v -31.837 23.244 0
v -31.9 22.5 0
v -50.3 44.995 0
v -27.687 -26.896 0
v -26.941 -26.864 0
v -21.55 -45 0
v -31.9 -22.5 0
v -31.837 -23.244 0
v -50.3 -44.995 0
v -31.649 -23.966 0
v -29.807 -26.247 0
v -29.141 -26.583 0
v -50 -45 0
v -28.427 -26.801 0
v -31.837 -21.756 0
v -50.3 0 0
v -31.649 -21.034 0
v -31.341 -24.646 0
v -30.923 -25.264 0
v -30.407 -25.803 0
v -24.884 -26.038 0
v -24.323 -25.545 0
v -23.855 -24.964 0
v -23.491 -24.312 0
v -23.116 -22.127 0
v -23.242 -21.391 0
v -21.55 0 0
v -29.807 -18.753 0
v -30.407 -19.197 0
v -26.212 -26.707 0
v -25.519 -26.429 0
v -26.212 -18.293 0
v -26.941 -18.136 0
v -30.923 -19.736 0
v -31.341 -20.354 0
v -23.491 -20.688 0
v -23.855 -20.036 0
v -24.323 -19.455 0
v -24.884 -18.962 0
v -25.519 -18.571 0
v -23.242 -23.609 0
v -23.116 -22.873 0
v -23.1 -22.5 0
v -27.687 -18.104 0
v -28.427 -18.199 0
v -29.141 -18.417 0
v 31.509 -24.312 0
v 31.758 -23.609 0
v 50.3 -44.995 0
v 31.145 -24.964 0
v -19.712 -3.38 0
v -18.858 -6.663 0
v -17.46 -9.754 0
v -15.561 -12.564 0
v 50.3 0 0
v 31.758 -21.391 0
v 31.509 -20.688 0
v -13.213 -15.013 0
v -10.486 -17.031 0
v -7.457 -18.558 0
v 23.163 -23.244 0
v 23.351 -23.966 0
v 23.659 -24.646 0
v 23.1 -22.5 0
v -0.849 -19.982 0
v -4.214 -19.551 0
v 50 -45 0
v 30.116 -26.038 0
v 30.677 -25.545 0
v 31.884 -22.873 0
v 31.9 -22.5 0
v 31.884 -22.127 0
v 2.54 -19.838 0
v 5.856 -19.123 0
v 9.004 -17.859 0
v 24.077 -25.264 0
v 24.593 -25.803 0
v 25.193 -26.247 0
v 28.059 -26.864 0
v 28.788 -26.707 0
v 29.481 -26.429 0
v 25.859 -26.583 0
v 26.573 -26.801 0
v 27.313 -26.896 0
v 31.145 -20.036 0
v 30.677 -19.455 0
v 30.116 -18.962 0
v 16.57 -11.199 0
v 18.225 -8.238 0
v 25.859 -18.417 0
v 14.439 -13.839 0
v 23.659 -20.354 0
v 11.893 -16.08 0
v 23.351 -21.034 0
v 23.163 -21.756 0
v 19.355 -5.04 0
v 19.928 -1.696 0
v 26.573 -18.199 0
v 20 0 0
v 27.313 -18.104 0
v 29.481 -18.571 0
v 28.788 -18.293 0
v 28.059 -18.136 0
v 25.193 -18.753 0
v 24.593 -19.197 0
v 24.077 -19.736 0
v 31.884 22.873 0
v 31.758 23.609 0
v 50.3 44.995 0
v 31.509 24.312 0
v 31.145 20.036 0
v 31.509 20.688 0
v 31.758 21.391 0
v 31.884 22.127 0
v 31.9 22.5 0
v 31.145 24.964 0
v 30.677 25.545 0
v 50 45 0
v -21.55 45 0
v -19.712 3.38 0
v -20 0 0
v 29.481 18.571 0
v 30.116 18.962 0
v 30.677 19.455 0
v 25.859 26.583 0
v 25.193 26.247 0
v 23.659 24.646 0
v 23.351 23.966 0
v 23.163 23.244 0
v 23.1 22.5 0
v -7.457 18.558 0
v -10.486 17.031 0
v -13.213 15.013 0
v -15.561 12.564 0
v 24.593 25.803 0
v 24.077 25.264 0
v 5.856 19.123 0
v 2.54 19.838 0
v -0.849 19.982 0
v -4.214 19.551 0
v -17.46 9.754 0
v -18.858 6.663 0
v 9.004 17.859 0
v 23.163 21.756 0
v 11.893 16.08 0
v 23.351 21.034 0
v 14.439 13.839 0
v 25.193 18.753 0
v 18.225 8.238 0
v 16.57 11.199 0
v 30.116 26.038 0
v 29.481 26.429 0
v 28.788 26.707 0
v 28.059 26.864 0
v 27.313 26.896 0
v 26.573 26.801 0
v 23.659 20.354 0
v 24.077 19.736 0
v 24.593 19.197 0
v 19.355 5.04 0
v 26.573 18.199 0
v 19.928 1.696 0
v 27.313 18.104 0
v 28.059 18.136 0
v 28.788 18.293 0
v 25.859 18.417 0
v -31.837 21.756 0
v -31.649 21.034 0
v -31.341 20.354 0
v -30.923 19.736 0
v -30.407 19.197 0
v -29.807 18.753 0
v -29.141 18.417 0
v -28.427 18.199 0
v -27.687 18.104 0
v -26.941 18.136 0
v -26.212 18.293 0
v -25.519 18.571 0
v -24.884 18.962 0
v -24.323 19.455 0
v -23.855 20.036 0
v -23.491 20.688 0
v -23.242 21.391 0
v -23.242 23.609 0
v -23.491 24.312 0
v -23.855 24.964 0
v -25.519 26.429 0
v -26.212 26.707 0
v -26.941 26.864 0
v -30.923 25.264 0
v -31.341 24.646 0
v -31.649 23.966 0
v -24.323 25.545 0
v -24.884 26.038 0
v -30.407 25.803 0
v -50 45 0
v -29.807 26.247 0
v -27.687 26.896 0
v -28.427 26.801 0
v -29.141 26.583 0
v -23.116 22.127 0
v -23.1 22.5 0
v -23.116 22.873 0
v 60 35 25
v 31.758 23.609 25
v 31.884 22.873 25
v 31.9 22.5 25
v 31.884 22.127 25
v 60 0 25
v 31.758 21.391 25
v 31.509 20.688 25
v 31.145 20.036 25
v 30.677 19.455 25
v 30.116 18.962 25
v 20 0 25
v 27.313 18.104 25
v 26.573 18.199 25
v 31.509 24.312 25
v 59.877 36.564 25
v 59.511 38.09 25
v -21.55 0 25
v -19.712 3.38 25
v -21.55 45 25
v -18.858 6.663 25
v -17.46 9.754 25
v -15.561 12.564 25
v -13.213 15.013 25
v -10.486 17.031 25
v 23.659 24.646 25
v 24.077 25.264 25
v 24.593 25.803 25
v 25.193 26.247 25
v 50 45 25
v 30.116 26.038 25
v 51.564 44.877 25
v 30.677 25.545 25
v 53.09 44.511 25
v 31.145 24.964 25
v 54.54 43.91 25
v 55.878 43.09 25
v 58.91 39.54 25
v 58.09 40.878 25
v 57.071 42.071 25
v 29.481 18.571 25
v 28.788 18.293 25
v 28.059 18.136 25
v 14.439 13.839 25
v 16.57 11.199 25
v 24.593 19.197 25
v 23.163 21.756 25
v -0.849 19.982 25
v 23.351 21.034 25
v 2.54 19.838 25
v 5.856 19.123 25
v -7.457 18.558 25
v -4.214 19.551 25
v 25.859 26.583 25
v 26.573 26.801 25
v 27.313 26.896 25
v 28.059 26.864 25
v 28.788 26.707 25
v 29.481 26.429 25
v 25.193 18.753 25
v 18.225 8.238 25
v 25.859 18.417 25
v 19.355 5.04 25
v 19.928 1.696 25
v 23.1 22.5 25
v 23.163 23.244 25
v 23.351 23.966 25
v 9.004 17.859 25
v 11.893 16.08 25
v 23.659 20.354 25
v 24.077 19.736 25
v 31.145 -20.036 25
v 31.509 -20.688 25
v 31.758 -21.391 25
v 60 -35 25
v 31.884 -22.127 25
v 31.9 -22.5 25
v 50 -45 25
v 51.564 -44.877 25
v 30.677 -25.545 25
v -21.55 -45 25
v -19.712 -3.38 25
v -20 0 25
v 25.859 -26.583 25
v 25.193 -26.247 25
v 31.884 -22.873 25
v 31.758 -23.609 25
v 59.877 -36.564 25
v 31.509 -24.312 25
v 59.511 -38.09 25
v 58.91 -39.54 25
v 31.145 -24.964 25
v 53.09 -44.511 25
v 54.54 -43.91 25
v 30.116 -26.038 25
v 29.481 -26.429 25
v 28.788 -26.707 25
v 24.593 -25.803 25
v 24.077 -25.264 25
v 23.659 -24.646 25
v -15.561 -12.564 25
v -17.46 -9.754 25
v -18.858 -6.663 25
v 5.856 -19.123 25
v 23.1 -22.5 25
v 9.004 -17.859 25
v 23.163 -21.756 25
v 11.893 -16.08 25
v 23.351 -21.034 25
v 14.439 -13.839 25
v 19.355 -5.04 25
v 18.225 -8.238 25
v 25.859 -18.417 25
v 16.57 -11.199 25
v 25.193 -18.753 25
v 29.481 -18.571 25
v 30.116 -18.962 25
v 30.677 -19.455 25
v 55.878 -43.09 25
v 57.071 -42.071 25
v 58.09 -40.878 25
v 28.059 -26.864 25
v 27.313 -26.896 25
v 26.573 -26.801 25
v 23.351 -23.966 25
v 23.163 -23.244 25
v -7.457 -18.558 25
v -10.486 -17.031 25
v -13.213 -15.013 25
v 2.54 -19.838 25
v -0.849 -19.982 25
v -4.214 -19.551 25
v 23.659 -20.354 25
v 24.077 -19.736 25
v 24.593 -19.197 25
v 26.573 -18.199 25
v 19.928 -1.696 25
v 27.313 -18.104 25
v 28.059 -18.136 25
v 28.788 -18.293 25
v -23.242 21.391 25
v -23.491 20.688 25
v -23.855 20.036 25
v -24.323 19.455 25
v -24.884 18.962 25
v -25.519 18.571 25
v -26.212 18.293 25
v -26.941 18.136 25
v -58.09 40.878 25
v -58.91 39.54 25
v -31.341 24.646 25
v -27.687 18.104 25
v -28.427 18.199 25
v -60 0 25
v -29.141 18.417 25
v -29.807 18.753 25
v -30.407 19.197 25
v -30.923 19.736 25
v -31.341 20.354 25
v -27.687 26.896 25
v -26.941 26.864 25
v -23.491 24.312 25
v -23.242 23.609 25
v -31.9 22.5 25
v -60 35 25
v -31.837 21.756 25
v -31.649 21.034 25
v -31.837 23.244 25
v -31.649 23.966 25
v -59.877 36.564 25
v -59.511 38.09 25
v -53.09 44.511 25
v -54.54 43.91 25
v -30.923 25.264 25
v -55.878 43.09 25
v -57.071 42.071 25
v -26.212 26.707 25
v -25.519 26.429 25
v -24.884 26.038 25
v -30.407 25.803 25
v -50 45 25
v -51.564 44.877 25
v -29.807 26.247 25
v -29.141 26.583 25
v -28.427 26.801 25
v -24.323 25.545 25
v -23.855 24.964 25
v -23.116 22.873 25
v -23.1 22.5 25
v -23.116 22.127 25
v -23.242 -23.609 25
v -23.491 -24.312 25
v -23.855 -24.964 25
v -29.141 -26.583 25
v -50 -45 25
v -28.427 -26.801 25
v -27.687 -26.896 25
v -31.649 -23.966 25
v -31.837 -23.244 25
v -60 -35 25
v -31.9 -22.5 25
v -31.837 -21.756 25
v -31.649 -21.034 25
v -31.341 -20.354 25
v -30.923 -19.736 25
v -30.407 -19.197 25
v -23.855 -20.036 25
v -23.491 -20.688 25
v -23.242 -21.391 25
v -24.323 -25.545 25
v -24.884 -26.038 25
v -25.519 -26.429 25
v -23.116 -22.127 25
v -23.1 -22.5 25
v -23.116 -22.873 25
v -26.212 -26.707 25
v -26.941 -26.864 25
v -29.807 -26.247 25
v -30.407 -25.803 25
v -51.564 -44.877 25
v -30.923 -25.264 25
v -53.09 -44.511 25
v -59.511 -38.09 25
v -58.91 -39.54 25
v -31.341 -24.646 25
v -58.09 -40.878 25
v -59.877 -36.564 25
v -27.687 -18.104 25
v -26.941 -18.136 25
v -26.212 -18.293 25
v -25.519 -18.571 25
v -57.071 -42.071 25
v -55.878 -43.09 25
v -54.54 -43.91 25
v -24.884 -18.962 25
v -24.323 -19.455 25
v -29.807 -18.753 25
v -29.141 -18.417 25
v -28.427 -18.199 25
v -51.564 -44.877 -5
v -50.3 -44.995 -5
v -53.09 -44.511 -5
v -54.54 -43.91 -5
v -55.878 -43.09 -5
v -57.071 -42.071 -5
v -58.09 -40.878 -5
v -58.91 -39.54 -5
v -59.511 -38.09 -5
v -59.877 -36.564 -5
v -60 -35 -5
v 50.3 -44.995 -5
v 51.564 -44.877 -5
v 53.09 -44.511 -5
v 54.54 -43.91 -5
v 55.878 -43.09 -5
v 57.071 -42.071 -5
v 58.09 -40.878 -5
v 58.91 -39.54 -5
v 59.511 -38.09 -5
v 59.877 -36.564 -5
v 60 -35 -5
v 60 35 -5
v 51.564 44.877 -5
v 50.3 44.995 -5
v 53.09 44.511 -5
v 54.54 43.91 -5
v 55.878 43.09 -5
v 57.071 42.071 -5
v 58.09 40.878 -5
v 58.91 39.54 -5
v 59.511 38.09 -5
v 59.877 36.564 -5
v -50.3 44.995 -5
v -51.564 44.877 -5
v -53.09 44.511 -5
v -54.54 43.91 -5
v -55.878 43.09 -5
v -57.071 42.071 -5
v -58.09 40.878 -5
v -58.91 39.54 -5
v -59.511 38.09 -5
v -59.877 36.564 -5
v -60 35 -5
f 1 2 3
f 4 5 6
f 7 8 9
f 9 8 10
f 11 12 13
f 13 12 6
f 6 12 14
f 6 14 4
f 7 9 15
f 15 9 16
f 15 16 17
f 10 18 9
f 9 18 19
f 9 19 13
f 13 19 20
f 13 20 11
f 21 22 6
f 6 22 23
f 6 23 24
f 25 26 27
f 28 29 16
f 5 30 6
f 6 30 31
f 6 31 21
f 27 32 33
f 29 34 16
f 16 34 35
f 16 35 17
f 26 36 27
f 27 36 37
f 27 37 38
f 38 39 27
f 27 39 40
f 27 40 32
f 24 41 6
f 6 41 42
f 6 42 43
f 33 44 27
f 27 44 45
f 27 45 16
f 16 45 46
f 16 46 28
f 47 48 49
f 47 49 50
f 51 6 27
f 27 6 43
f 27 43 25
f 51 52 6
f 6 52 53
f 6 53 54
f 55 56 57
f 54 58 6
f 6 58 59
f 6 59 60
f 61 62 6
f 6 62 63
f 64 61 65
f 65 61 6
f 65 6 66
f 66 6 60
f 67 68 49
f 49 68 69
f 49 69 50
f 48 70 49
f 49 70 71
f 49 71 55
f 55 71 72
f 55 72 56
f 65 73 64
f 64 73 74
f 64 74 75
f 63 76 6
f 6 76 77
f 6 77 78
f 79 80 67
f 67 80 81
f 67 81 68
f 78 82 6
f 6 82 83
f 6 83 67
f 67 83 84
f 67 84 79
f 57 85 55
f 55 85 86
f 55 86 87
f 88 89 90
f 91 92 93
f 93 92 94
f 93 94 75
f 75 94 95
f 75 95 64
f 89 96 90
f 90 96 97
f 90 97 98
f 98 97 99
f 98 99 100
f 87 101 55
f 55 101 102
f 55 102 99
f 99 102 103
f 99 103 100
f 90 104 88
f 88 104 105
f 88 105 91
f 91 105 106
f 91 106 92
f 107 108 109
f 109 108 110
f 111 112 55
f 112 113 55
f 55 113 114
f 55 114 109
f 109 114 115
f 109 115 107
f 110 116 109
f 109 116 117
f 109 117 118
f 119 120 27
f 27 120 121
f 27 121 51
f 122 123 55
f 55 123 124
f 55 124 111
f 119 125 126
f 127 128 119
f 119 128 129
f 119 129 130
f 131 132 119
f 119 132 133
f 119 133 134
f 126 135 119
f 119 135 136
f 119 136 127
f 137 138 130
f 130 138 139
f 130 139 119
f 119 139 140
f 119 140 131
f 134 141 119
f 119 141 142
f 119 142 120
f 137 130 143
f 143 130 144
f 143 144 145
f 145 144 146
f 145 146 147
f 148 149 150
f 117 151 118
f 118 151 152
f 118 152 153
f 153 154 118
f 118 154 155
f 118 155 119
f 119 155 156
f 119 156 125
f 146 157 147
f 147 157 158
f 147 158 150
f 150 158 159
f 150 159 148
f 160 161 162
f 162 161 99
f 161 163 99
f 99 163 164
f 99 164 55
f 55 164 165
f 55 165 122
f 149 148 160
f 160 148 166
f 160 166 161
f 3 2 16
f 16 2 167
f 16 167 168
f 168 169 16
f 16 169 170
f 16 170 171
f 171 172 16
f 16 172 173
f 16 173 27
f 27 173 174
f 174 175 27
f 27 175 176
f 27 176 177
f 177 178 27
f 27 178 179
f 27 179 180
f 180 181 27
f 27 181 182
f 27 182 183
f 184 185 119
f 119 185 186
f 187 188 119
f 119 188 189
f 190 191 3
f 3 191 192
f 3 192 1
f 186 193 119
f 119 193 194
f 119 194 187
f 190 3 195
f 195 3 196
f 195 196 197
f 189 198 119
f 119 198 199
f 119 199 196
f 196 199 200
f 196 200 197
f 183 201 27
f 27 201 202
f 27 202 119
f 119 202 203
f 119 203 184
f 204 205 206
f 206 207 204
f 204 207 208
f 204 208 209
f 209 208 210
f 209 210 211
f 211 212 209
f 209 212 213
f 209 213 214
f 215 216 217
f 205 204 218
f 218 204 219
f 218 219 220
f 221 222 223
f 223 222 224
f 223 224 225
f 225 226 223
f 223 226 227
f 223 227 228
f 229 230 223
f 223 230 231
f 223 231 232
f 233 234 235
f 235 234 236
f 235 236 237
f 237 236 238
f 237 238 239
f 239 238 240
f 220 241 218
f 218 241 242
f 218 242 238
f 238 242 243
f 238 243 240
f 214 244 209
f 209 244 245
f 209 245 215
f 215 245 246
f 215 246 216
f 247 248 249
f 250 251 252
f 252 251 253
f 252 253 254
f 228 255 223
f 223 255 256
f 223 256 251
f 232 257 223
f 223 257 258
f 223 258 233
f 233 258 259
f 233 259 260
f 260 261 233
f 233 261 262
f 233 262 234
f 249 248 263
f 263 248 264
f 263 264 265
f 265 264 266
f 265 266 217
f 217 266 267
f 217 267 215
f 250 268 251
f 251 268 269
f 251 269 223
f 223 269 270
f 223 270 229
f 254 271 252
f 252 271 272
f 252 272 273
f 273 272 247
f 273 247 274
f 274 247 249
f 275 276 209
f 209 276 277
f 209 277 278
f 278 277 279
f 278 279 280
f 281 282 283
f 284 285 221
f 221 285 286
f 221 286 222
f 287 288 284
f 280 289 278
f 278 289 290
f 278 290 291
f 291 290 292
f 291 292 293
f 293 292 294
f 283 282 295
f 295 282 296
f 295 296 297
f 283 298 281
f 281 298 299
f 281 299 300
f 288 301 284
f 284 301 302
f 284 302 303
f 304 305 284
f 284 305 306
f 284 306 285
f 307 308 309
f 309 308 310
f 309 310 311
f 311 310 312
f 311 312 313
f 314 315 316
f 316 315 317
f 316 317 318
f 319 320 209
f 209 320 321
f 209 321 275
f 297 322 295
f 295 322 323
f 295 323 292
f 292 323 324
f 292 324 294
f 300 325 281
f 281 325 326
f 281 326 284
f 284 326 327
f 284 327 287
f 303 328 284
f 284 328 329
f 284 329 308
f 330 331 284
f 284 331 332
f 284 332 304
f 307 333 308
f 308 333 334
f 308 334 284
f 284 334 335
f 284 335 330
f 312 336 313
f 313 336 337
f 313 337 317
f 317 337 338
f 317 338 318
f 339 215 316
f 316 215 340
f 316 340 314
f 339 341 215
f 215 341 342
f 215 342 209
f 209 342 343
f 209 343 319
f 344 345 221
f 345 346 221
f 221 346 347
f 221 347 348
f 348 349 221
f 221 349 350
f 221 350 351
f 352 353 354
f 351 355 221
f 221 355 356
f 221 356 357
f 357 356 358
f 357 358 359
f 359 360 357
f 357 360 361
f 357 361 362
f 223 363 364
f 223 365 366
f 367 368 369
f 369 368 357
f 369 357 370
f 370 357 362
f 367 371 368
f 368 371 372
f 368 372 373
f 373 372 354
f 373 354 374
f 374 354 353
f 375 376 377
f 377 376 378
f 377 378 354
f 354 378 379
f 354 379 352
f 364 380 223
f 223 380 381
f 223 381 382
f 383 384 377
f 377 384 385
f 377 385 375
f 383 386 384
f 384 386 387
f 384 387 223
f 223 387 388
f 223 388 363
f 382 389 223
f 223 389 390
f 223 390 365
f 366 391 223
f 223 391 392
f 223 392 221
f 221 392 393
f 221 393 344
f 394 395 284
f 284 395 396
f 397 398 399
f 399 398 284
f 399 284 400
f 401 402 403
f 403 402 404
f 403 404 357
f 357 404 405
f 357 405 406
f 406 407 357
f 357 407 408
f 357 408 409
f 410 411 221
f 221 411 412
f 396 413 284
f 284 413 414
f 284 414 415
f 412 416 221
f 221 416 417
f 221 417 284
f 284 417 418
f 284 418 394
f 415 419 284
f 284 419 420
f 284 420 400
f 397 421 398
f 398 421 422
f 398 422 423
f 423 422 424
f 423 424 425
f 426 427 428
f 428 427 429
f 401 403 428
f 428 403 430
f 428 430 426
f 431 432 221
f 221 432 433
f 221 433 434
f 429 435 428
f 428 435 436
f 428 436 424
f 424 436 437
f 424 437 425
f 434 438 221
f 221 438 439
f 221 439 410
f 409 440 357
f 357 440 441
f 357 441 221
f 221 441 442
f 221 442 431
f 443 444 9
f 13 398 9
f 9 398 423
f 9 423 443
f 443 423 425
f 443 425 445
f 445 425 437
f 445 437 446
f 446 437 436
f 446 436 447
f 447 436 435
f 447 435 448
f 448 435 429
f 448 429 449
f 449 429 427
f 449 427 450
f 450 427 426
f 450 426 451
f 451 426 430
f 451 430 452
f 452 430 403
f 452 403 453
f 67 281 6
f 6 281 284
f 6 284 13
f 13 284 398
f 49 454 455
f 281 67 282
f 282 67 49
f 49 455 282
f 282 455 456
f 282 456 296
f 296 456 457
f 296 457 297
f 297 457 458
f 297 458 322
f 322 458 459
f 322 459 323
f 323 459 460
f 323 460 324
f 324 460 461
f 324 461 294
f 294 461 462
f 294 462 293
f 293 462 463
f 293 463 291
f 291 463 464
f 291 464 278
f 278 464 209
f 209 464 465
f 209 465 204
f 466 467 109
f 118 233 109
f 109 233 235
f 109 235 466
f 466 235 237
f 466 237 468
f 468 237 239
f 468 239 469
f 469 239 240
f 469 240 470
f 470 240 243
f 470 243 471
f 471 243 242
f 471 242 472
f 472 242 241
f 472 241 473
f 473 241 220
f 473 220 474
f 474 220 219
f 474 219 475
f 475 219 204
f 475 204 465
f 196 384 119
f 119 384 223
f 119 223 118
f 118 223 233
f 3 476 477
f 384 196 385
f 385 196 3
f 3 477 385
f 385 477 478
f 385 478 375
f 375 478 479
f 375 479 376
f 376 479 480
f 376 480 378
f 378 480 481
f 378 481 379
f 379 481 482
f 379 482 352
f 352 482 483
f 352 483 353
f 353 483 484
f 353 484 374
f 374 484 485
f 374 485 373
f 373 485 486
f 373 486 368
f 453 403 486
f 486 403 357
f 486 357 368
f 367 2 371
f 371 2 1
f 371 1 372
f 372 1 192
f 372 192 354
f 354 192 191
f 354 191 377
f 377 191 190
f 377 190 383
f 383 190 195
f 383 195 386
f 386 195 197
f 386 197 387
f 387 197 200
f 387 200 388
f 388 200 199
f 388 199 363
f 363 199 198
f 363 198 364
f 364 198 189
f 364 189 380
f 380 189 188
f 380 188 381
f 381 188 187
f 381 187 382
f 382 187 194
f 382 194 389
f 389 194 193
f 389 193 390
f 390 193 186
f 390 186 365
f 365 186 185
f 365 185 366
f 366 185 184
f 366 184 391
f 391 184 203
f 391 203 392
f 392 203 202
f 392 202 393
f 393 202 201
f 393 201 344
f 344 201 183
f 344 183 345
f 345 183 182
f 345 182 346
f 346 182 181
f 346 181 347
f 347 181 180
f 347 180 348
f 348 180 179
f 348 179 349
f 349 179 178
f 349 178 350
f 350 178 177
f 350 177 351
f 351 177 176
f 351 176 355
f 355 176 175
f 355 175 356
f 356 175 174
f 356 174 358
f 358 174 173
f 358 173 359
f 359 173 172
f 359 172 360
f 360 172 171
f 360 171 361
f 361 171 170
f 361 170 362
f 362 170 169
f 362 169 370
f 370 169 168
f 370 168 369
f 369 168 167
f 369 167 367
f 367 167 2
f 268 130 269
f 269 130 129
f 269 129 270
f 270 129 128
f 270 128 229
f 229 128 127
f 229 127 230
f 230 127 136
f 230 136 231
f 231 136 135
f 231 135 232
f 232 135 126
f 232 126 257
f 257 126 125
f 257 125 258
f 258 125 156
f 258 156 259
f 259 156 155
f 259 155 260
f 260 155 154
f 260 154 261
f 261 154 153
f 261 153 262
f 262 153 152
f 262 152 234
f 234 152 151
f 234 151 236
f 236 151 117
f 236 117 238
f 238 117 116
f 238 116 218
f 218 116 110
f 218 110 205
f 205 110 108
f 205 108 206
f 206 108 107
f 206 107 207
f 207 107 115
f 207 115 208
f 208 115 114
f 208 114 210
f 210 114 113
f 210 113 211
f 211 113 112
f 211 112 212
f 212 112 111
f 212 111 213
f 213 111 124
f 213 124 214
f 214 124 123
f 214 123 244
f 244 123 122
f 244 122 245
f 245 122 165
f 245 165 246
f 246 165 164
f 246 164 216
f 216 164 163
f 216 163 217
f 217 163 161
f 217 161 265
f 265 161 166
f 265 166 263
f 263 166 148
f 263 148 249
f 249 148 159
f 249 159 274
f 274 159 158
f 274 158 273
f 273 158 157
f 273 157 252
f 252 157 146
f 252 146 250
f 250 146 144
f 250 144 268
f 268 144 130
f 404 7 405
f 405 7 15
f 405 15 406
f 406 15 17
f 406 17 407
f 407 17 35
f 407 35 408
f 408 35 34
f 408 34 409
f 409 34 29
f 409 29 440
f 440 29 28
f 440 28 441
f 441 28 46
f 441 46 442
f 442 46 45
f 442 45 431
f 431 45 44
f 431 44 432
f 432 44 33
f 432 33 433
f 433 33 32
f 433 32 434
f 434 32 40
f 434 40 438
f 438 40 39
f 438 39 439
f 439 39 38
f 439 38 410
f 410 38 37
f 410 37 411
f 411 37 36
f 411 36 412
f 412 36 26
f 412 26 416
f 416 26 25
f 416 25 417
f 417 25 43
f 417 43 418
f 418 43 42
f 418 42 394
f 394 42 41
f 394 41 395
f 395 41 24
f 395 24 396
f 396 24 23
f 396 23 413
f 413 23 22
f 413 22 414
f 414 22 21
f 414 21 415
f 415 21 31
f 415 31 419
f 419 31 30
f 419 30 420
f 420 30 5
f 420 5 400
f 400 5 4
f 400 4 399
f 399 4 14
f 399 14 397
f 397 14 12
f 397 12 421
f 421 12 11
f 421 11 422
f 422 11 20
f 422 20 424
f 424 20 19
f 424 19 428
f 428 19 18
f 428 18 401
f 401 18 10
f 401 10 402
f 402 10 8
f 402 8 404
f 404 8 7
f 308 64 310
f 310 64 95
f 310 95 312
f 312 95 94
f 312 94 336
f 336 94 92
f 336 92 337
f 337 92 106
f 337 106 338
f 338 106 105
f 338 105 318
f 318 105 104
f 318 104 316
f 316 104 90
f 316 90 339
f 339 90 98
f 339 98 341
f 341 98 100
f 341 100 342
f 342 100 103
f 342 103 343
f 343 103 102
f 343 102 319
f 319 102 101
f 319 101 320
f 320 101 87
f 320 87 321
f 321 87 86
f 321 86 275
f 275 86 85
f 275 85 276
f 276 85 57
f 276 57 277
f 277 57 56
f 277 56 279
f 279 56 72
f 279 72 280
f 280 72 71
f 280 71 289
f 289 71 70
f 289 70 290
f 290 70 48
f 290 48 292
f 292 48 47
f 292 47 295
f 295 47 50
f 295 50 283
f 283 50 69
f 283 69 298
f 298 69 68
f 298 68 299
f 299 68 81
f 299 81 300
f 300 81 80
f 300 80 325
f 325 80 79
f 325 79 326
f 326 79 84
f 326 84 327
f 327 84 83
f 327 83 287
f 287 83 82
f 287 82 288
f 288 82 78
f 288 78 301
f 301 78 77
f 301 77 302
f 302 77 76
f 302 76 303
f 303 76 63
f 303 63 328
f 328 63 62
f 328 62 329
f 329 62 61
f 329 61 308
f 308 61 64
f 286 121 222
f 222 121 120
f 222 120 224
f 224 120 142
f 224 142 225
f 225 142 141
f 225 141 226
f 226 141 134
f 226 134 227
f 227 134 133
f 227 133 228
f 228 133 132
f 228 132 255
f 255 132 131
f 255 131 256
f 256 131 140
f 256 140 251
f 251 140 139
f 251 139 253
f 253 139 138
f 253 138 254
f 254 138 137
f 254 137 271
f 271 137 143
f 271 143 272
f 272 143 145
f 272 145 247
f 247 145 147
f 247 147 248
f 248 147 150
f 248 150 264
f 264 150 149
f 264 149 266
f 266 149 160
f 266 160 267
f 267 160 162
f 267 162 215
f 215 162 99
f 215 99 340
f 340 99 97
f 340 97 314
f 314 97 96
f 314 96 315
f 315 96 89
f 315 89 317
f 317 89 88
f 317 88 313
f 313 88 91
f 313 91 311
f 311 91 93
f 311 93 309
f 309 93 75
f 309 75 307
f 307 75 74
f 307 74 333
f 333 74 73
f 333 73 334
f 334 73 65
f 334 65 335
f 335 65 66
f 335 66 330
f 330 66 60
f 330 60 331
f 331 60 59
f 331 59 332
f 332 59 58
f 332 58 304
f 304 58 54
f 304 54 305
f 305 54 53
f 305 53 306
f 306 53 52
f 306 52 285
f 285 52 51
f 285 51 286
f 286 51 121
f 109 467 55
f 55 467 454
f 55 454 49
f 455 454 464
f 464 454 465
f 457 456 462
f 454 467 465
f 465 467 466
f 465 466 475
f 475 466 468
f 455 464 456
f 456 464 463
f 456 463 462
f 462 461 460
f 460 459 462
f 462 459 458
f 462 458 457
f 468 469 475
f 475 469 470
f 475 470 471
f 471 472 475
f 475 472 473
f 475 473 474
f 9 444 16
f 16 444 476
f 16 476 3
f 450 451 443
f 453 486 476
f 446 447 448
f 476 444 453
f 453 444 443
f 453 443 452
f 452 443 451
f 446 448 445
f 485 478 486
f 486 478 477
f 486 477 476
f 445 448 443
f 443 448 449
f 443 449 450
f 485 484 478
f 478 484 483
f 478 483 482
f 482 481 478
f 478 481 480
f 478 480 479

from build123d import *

# Parameters (mm, degrees)
SKETCH1_R           = 4.4
SKETCH1_R_2         = 20
BOSS_EXTRUDE1_DEPTH = 25
BOSS_EXTRUDE2_DEPTH = 5


with BuildPart() as part:
    # Sketch1 → Boss-Extrude1 (new body)
    with BuildSketch(Plane.XY):
        with BuildLine():
            Line((-50, 45), (50, 45))
            ThreePointArc((50, 45), (57.071067812, 42.071067812), (60, 35))
            Line((60, 35), (60, -35))
            ThreePointArc((60, -35), (57.071067812, -42.071067812), (50, -45))
            Line((50, -45), (-50, -45))
            ThreePointArc((-50, -45), (-57.071067812, -42.071067812), (-60, -35))
            Line((-60, -35), (-60, 35))
            ThreePointArc((-60, 35), (-57.071067812, 42.071067812), (-50, 45))
        make_face()
        with Locations((-27.5, 22.5)):
            Circle(SKETCH1_R, mode=Mode.SUBTRACT)
        with Locations((27.5, 22.5)):
            Circle(SKETCH1_R, mode=Mode.SUBTRACT)
        with Locations((-27.5, -22.5)):
            Circle(SKETCH1_R, mode=Mode.SUBTRACT)
        with Locations((27.5, -22.5)):
            Circle(SKETCH1_R, mode=Mode.SUBTRACT)
        Circle(SKETCH1_R_2, mode=Mode.SUBTRACT)
    extrude(amount=BOSS_EXTRUDE1_DEPTH)

    # Sketch2 → Boss-Extrude2 (add)
    with BuildSketch(Plane(origin=(0, 0, 0), x_dir=(-1, 0, 0), z_dir=(0, 0, -1))):
        with BuildLine():
            Line((-50.3, 44.995498987), (-50.3, -44.995498987))
            ThreePointArc((-50.3, -44.995498987), (-57.176350047, -41.964194139), (-60, -35))
            Line((-60, -35), (-60, 35))
            ThreePointArc((-60, 35), (-57.176350047, 41.964194139), (-50.3, 44.995498987))
        make_face()
        with BuildLine():
            Line((60, -35), (60, 35))
            ThreePointArc((60, 35), (57.176350047, 41.964194139), (50.3, 44.995498987))
            Line((50.3, 44.995498987), (50.3, -44.995498987))
            ThreePointArc((50.3, -44.995498987), (57.176350047, -41.964194139), (60, -35))
        make_face()
    extrude(amount=BOSS_EXTRUDE2_DEPTH)


solid = part.part
